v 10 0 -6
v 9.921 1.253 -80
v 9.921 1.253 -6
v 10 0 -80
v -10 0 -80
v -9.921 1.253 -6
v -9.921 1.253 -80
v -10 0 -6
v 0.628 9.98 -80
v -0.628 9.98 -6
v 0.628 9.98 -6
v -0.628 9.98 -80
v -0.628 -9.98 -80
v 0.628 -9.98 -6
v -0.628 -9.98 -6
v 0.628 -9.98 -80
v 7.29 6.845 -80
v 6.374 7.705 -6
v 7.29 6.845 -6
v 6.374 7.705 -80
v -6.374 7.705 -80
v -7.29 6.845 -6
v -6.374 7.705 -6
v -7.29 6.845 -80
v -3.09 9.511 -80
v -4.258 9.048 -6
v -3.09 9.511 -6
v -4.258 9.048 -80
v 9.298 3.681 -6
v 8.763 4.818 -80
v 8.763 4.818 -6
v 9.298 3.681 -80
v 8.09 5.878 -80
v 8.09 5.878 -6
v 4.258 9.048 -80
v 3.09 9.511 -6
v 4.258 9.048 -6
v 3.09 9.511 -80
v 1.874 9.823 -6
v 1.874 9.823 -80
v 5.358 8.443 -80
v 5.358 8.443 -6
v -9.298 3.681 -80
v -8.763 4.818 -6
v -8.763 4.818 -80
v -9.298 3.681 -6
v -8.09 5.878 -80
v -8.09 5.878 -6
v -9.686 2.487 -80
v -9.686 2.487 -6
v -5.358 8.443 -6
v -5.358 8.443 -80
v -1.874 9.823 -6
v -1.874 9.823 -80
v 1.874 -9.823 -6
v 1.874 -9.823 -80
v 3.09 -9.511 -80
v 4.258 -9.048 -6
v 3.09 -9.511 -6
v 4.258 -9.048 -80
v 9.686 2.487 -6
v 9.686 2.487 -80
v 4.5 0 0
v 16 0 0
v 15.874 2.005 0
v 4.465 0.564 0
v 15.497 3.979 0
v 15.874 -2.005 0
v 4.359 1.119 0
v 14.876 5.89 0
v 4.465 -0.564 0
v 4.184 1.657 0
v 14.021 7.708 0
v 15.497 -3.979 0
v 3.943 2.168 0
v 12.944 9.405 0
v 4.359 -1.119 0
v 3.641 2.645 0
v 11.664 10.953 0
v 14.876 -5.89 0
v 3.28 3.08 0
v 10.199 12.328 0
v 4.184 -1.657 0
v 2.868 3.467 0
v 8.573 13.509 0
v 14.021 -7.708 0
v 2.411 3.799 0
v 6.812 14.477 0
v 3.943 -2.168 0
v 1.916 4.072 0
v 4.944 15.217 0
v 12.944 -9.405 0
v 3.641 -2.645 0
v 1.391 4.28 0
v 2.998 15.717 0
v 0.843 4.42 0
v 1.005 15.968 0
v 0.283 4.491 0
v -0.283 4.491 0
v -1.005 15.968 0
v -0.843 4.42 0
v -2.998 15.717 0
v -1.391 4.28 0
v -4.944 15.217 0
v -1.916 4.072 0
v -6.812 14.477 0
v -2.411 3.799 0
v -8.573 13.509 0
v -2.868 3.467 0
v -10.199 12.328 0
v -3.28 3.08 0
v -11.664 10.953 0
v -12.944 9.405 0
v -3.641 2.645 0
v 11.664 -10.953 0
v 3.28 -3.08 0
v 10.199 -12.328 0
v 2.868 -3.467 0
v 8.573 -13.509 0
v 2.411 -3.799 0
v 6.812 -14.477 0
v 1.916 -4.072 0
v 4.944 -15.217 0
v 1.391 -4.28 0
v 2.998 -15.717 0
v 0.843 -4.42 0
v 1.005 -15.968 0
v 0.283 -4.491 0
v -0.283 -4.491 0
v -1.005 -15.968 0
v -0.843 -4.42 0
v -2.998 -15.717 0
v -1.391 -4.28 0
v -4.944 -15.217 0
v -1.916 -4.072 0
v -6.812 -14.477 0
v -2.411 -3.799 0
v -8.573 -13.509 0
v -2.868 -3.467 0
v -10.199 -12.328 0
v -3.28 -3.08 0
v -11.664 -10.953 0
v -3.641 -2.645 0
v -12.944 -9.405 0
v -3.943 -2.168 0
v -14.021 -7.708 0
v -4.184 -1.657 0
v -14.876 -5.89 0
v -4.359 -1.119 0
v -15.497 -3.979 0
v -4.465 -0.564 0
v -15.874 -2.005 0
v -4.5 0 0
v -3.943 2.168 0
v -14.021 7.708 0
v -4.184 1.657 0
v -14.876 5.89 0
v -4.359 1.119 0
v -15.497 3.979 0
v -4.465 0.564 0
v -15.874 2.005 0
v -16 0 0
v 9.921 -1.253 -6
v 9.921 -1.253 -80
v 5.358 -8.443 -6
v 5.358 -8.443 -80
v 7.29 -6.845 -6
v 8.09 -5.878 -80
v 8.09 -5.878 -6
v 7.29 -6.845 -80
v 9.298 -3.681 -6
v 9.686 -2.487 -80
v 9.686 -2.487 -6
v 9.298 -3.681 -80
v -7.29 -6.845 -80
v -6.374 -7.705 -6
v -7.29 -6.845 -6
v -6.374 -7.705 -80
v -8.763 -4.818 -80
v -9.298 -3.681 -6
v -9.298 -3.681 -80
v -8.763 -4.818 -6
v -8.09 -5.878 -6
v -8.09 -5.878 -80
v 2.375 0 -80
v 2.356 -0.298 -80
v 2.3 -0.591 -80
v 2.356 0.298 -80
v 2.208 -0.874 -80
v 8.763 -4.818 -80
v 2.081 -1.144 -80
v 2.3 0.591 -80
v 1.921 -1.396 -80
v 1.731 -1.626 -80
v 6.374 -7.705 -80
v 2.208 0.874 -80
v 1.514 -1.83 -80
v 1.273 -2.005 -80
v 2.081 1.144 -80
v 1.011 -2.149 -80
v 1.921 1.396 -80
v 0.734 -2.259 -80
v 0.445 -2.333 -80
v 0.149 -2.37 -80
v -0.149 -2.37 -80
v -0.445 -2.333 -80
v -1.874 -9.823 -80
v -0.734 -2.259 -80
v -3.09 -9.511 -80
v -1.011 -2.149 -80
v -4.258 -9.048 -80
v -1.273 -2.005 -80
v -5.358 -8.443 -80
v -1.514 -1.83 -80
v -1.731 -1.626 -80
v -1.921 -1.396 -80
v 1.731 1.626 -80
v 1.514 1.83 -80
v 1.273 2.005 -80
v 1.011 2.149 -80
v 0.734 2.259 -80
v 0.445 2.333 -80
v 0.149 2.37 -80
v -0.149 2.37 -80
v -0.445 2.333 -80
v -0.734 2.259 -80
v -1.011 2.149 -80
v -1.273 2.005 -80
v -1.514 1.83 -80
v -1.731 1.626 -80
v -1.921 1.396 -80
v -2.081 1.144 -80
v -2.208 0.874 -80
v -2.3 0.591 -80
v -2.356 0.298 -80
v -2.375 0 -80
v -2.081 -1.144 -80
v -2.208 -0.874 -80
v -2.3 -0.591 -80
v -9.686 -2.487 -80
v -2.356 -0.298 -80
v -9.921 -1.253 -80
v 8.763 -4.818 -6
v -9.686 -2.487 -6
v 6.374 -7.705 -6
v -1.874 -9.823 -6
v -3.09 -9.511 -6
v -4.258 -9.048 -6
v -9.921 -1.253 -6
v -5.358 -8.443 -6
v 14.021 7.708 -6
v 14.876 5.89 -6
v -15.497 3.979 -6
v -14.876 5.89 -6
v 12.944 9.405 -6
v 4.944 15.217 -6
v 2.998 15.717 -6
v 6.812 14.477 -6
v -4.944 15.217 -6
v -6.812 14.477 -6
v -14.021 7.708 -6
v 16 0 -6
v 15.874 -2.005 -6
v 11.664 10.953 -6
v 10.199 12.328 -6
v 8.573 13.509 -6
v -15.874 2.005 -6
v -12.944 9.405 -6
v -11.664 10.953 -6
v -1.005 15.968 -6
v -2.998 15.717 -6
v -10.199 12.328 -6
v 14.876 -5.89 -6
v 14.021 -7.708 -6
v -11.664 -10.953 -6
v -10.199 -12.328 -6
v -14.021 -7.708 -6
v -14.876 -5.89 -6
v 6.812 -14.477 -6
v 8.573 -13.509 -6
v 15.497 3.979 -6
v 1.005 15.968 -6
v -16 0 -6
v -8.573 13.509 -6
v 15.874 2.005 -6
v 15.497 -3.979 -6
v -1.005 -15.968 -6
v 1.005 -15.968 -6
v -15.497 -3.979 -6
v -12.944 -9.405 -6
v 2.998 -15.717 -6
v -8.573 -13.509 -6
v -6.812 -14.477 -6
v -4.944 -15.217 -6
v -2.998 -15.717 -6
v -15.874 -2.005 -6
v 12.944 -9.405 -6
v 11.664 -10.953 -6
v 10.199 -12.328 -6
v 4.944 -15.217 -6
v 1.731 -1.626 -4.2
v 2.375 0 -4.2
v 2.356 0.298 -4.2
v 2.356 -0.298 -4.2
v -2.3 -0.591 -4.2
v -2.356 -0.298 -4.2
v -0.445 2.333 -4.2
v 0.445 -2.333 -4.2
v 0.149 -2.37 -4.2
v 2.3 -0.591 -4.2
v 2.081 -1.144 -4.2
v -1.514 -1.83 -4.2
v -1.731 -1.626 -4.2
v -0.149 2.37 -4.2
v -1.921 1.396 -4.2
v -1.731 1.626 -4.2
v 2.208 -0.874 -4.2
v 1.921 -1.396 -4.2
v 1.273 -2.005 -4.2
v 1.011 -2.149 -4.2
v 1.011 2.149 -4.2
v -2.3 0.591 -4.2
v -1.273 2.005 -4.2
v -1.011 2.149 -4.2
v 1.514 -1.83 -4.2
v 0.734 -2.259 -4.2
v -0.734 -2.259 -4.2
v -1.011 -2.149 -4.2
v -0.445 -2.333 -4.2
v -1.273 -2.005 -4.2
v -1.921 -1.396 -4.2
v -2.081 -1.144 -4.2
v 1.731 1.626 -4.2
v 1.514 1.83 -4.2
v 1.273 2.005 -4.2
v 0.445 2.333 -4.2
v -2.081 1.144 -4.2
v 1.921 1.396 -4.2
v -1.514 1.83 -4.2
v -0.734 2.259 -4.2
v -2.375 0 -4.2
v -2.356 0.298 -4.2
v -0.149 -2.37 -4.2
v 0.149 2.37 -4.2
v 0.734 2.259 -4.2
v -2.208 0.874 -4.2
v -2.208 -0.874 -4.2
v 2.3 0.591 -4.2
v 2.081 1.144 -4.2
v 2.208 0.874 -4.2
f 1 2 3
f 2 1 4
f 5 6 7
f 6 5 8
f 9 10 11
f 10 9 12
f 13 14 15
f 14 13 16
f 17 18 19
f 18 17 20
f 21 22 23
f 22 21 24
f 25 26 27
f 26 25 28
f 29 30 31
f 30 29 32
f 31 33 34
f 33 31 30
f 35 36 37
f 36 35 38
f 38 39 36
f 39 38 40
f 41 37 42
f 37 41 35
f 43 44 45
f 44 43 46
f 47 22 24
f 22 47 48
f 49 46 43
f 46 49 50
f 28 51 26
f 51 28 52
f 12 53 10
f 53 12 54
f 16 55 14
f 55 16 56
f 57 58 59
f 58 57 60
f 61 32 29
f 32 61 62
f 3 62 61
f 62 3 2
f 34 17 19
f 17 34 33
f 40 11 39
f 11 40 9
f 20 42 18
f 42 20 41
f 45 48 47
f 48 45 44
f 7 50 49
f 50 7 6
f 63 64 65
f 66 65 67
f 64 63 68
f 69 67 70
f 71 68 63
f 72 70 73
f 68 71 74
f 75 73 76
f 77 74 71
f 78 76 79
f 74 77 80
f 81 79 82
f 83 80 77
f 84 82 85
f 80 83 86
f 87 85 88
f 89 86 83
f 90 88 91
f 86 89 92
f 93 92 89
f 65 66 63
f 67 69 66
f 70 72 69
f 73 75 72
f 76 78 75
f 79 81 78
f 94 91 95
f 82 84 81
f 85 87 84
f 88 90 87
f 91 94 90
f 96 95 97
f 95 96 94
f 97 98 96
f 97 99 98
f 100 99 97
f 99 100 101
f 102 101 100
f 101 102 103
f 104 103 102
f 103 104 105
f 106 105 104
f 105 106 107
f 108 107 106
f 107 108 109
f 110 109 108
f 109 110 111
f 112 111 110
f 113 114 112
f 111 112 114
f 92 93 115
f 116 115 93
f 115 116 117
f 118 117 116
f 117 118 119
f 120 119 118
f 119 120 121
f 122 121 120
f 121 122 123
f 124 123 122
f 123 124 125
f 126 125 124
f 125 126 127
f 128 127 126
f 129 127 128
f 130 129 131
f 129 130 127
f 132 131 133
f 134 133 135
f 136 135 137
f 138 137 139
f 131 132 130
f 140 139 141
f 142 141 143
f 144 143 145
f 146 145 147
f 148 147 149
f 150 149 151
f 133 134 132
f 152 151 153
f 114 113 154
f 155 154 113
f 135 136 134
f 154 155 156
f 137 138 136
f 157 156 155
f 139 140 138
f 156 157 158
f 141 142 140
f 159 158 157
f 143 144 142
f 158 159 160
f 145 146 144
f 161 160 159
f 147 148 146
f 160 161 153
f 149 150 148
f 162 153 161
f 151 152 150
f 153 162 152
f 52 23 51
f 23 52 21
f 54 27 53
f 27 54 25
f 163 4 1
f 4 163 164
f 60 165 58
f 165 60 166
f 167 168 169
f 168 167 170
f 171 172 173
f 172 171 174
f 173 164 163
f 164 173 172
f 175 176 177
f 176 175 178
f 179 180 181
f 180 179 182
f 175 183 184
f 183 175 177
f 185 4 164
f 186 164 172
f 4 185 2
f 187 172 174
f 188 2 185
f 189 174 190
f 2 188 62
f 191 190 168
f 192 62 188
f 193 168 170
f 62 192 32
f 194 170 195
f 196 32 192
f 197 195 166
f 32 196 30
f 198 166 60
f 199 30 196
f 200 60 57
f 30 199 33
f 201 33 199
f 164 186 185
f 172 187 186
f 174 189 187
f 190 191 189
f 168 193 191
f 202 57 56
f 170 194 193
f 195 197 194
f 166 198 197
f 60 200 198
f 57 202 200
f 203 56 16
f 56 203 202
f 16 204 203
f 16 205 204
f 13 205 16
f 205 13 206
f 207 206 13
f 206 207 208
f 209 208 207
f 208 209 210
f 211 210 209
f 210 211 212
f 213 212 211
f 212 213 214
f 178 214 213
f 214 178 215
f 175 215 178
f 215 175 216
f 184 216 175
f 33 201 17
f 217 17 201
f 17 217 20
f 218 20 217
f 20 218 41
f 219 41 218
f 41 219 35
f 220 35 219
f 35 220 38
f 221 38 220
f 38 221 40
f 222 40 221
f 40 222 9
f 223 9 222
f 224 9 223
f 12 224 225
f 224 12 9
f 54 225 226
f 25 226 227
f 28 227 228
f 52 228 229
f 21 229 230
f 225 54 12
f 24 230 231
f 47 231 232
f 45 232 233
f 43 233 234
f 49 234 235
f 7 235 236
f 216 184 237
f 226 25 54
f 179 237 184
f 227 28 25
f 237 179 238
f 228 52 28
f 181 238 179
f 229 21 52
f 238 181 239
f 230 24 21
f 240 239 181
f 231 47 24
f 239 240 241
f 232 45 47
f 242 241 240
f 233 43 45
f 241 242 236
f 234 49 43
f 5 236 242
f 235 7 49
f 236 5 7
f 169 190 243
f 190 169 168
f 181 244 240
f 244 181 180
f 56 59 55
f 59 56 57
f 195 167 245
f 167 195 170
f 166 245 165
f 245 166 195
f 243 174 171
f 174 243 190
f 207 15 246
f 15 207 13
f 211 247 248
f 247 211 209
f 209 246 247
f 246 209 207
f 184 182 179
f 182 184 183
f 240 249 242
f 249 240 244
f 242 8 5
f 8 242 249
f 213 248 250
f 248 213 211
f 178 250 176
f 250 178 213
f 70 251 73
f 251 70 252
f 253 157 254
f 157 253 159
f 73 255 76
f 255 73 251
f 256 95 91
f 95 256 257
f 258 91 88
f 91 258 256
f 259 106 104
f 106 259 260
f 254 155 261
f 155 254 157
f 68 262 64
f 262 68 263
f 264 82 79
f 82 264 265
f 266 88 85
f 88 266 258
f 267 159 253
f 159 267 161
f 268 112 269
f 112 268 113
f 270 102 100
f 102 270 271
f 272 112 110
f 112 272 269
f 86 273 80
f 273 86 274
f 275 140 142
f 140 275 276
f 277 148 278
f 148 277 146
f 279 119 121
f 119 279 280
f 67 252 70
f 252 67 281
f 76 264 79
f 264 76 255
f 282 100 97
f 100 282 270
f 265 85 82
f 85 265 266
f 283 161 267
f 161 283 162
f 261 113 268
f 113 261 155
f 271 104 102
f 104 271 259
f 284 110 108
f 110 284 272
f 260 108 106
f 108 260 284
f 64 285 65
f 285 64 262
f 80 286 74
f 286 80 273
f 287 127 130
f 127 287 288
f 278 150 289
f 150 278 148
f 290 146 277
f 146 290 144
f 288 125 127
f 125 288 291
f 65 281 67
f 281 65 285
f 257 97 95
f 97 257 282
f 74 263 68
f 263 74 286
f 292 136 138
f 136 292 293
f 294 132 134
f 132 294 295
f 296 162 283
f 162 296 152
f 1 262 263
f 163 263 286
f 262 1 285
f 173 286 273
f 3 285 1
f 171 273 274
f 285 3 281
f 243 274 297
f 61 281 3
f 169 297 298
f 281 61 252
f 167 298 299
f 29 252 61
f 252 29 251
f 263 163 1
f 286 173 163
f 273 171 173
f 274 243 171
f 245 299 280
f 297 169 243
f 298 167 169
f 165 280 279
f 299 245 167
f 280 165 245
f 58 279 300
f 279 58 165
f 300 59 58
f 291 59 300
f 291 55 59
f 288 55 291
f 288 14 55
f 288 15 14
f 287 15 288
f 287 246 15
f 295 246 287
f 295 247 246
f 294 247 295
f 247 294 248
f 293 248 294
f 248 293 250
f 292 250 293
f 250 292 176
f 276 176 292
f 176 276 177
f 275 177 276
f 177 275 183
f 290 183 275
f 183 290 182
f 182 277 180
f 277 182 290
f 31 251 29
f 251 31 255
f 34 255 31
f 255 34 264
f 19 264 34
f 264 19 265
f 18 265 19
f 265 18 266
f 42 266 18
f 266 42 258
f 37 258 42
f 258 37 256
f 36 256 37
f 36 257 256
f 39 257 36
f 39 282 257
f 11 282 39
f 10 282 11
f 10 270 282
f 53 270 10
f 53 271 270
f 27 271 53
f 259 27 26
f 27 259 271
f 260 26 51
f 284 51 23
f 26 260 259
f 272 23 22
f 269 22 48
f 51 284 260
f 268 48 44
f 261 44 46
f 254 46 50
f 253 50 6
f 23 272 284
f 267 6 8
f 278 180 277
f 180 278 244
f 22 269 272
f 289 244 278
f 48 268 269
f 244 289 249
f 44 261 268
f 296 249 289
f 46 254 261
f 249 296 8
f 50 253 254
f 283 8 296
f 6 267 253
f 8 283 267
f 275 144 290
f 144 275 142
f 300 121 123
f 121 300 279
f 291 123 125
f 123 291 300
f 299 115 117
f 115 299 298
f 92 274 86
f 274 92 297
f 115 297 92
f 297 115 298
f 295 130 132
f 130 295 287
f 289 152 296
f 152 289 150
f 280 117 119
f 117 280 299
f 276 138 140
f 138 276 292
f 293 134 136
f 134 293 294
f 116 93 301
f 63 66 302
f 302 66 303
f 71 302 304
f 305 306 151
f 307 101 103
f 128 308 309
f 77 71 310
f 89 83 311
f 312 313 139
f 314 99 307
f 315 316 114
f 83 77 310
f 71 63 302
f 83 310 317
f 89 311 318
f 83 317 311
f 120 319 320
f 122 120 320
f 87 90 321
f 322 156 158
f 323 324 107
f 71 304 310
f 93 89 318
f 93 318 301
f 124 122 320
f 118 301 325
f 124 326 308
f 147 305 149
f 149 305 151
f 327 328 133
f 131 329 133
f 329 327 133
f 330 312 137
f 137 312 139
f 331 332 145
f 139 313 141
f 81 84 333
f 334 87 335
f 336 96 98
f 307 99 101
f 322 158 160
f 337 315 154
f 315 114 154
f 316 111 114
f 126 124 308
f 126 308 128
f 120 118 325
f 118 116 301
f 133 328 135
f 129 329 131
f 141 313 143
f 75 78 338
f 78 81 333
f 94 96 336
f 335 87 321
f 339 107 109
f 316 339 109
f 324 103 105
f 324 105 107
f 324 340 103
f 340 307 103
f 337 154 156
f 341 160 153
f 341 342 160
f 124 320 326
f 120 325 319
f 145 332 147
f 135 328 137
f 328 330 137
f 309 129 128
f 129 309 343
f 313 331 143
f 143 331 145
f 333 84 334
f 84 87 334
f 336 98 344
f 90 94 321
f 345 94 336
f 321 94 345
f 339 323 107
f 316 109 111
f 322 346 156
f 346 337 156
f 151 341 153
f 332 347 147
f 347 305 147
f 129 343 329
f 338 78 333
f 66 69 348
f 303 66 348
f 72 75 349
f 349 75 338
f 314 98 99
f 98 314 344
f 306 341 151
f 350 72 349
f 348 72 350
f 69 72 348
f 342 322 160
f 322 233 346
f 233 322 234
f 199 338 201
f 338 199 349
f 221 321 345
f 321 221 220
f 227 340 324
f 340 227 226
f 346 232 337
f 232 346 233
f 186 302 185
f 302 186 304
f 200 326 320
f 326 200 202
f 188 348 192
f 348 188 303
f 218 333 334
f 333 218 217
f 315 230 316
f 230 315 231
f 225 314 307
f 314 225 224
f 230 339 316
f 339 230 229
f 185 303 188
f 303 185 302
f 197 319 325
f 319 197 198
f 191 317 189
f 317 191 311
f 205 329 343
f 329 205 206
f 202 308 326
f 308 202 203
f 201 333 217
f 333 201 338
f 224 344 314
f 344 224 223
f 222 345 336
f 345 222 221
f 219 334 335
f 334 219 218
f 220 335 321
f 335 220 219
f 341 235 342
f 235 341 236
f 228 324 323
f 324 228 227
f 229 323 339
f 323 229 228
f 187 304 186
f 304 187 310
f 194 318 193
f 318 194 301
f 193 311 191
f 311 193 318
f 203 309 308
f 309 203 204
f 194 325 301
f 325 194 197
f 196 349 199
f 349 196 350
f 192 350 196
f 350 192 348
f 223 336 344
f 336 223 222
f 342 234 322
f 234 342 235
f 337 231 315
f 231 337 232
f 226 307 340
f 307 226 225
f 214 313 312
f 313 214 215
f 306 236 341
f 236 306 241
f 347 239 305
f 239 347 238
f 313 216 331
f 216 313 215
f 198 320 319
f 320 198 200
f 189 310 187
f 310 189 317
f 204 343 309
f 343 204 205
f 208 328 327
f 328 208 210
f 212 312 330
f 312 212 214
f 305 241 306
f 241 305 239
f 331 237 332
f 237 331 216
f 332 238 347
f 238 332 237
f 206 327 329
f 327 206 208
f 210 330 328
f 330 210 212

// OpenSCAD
$fn = 50;


difference() {
	union() {
		translate(v = [0, 0, -80.0000000000]) {
			cylinder(h = 80, r = 10.0000000000);
		}
		translate(v = [0, 0, -6.0000000000]) {
			cylinder(h = 6, r = 16.0000000000);
		}
	}
	union() {
		translate(v = [0, 0, 0]) {
			rotate(a = [0, 0, 0]) {
				difference() {
					union() {
						#translate(v = [0, 0, -80.0000000000]) {
							cylinder(h = 80, r = 2.2500000000);
						}
						#translate(v = [0, 0, -4.2000000000]) {
							cylinder(h = 4.2000000000, r = 10.0000000000, r1 = 2.3750000000, r2 = 4.5000000000);
						}
						#translate(v = [0, 0, -80.0000000000]) {
							cylinder(h = 80, r = 2.3750000000);
						}
						#translate(v = [0, 0, -80.0000000000]) {
							cylinder(h = 80, r = 2.2500000000);
						}
					}
					union();
				}
			}
		}
	}
}
